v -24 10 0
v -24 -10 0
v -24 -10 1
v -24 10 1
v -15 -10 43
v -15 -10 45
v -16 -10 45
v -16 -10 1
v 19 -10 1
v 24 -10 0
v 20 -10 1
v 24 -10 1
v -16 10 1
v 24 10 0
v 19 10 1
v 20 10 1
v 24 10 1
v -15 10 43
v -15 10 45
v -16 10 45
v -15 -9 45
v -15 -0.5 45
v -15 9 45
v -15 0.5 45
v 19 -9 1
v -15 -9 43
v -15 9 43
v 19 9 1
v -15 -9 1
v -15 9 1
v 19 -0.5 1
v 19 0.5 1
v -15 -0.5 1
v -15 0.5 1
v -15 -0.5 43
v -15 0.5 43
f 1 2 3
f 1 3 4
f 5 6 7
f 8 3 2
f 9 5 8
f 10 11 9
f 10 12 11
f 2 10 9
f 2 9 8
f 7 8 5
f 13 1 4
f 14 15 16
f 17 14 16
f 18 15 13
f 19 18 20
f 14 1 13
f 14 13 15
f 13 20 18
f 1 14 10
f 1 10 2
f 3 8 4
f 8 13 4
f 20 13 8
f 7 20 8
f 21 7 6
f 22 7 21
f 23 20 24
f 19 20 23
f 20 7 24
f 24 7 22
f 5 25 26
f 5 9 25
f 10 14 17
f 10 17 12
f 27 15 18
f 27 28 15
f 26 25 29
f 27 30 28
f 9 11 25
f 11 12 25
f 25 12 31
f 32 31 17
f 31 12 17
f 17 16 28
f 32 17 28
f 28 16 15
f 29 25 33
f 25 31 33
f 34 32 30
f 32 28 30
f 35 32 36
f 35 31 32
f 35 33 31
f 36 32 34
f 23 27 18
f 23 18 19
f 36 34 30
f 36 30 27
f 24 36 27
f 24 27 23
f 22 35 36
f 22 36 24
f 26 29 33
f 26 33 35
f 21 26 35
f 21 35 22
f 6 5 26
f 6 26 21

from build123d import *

# Parameters (mm, degrees)
SKETCH_W     = 48
SKETCH_H     = 20
PAD_DEPTH    = 1
PAD001_DEPTH = 44
POCKET_DEPTH = 20.001


with BuildPart() as part:
    # Sketch → Pad (new body)
    with BuildSketch(Plane.XY):
        Rectangle(SKETCH_W, SKETCH_H)
    extrude(amount=PAD_DEPTH)

    # Sketch001 → Pad001 (new body)
    with BuildSketch(Plane.XY.offset(1)):
        Polygon((-16, 10), (-16, -10), (19, -10), (19, -9), (-15, -9), (-15, -0.5), (19, -0.5), (19, 0.5), (-15, 0.5), (-15, 9), (19, 9), (19, 10), align=None)
    extrude(amount=PAD001_DEPTH)

    # Sketch002 → Pocket (cut, through all)
    with BuildSketch(Plane.XZ.offset(10)):
        Polygon((19, 1), (-15, 43), (-15, 46), (20, 46), (20, 1), align=None)
    extrude(amount=-POCKET_DEPTH, mode=Mode.SUBTRACT)


solid = part.part
